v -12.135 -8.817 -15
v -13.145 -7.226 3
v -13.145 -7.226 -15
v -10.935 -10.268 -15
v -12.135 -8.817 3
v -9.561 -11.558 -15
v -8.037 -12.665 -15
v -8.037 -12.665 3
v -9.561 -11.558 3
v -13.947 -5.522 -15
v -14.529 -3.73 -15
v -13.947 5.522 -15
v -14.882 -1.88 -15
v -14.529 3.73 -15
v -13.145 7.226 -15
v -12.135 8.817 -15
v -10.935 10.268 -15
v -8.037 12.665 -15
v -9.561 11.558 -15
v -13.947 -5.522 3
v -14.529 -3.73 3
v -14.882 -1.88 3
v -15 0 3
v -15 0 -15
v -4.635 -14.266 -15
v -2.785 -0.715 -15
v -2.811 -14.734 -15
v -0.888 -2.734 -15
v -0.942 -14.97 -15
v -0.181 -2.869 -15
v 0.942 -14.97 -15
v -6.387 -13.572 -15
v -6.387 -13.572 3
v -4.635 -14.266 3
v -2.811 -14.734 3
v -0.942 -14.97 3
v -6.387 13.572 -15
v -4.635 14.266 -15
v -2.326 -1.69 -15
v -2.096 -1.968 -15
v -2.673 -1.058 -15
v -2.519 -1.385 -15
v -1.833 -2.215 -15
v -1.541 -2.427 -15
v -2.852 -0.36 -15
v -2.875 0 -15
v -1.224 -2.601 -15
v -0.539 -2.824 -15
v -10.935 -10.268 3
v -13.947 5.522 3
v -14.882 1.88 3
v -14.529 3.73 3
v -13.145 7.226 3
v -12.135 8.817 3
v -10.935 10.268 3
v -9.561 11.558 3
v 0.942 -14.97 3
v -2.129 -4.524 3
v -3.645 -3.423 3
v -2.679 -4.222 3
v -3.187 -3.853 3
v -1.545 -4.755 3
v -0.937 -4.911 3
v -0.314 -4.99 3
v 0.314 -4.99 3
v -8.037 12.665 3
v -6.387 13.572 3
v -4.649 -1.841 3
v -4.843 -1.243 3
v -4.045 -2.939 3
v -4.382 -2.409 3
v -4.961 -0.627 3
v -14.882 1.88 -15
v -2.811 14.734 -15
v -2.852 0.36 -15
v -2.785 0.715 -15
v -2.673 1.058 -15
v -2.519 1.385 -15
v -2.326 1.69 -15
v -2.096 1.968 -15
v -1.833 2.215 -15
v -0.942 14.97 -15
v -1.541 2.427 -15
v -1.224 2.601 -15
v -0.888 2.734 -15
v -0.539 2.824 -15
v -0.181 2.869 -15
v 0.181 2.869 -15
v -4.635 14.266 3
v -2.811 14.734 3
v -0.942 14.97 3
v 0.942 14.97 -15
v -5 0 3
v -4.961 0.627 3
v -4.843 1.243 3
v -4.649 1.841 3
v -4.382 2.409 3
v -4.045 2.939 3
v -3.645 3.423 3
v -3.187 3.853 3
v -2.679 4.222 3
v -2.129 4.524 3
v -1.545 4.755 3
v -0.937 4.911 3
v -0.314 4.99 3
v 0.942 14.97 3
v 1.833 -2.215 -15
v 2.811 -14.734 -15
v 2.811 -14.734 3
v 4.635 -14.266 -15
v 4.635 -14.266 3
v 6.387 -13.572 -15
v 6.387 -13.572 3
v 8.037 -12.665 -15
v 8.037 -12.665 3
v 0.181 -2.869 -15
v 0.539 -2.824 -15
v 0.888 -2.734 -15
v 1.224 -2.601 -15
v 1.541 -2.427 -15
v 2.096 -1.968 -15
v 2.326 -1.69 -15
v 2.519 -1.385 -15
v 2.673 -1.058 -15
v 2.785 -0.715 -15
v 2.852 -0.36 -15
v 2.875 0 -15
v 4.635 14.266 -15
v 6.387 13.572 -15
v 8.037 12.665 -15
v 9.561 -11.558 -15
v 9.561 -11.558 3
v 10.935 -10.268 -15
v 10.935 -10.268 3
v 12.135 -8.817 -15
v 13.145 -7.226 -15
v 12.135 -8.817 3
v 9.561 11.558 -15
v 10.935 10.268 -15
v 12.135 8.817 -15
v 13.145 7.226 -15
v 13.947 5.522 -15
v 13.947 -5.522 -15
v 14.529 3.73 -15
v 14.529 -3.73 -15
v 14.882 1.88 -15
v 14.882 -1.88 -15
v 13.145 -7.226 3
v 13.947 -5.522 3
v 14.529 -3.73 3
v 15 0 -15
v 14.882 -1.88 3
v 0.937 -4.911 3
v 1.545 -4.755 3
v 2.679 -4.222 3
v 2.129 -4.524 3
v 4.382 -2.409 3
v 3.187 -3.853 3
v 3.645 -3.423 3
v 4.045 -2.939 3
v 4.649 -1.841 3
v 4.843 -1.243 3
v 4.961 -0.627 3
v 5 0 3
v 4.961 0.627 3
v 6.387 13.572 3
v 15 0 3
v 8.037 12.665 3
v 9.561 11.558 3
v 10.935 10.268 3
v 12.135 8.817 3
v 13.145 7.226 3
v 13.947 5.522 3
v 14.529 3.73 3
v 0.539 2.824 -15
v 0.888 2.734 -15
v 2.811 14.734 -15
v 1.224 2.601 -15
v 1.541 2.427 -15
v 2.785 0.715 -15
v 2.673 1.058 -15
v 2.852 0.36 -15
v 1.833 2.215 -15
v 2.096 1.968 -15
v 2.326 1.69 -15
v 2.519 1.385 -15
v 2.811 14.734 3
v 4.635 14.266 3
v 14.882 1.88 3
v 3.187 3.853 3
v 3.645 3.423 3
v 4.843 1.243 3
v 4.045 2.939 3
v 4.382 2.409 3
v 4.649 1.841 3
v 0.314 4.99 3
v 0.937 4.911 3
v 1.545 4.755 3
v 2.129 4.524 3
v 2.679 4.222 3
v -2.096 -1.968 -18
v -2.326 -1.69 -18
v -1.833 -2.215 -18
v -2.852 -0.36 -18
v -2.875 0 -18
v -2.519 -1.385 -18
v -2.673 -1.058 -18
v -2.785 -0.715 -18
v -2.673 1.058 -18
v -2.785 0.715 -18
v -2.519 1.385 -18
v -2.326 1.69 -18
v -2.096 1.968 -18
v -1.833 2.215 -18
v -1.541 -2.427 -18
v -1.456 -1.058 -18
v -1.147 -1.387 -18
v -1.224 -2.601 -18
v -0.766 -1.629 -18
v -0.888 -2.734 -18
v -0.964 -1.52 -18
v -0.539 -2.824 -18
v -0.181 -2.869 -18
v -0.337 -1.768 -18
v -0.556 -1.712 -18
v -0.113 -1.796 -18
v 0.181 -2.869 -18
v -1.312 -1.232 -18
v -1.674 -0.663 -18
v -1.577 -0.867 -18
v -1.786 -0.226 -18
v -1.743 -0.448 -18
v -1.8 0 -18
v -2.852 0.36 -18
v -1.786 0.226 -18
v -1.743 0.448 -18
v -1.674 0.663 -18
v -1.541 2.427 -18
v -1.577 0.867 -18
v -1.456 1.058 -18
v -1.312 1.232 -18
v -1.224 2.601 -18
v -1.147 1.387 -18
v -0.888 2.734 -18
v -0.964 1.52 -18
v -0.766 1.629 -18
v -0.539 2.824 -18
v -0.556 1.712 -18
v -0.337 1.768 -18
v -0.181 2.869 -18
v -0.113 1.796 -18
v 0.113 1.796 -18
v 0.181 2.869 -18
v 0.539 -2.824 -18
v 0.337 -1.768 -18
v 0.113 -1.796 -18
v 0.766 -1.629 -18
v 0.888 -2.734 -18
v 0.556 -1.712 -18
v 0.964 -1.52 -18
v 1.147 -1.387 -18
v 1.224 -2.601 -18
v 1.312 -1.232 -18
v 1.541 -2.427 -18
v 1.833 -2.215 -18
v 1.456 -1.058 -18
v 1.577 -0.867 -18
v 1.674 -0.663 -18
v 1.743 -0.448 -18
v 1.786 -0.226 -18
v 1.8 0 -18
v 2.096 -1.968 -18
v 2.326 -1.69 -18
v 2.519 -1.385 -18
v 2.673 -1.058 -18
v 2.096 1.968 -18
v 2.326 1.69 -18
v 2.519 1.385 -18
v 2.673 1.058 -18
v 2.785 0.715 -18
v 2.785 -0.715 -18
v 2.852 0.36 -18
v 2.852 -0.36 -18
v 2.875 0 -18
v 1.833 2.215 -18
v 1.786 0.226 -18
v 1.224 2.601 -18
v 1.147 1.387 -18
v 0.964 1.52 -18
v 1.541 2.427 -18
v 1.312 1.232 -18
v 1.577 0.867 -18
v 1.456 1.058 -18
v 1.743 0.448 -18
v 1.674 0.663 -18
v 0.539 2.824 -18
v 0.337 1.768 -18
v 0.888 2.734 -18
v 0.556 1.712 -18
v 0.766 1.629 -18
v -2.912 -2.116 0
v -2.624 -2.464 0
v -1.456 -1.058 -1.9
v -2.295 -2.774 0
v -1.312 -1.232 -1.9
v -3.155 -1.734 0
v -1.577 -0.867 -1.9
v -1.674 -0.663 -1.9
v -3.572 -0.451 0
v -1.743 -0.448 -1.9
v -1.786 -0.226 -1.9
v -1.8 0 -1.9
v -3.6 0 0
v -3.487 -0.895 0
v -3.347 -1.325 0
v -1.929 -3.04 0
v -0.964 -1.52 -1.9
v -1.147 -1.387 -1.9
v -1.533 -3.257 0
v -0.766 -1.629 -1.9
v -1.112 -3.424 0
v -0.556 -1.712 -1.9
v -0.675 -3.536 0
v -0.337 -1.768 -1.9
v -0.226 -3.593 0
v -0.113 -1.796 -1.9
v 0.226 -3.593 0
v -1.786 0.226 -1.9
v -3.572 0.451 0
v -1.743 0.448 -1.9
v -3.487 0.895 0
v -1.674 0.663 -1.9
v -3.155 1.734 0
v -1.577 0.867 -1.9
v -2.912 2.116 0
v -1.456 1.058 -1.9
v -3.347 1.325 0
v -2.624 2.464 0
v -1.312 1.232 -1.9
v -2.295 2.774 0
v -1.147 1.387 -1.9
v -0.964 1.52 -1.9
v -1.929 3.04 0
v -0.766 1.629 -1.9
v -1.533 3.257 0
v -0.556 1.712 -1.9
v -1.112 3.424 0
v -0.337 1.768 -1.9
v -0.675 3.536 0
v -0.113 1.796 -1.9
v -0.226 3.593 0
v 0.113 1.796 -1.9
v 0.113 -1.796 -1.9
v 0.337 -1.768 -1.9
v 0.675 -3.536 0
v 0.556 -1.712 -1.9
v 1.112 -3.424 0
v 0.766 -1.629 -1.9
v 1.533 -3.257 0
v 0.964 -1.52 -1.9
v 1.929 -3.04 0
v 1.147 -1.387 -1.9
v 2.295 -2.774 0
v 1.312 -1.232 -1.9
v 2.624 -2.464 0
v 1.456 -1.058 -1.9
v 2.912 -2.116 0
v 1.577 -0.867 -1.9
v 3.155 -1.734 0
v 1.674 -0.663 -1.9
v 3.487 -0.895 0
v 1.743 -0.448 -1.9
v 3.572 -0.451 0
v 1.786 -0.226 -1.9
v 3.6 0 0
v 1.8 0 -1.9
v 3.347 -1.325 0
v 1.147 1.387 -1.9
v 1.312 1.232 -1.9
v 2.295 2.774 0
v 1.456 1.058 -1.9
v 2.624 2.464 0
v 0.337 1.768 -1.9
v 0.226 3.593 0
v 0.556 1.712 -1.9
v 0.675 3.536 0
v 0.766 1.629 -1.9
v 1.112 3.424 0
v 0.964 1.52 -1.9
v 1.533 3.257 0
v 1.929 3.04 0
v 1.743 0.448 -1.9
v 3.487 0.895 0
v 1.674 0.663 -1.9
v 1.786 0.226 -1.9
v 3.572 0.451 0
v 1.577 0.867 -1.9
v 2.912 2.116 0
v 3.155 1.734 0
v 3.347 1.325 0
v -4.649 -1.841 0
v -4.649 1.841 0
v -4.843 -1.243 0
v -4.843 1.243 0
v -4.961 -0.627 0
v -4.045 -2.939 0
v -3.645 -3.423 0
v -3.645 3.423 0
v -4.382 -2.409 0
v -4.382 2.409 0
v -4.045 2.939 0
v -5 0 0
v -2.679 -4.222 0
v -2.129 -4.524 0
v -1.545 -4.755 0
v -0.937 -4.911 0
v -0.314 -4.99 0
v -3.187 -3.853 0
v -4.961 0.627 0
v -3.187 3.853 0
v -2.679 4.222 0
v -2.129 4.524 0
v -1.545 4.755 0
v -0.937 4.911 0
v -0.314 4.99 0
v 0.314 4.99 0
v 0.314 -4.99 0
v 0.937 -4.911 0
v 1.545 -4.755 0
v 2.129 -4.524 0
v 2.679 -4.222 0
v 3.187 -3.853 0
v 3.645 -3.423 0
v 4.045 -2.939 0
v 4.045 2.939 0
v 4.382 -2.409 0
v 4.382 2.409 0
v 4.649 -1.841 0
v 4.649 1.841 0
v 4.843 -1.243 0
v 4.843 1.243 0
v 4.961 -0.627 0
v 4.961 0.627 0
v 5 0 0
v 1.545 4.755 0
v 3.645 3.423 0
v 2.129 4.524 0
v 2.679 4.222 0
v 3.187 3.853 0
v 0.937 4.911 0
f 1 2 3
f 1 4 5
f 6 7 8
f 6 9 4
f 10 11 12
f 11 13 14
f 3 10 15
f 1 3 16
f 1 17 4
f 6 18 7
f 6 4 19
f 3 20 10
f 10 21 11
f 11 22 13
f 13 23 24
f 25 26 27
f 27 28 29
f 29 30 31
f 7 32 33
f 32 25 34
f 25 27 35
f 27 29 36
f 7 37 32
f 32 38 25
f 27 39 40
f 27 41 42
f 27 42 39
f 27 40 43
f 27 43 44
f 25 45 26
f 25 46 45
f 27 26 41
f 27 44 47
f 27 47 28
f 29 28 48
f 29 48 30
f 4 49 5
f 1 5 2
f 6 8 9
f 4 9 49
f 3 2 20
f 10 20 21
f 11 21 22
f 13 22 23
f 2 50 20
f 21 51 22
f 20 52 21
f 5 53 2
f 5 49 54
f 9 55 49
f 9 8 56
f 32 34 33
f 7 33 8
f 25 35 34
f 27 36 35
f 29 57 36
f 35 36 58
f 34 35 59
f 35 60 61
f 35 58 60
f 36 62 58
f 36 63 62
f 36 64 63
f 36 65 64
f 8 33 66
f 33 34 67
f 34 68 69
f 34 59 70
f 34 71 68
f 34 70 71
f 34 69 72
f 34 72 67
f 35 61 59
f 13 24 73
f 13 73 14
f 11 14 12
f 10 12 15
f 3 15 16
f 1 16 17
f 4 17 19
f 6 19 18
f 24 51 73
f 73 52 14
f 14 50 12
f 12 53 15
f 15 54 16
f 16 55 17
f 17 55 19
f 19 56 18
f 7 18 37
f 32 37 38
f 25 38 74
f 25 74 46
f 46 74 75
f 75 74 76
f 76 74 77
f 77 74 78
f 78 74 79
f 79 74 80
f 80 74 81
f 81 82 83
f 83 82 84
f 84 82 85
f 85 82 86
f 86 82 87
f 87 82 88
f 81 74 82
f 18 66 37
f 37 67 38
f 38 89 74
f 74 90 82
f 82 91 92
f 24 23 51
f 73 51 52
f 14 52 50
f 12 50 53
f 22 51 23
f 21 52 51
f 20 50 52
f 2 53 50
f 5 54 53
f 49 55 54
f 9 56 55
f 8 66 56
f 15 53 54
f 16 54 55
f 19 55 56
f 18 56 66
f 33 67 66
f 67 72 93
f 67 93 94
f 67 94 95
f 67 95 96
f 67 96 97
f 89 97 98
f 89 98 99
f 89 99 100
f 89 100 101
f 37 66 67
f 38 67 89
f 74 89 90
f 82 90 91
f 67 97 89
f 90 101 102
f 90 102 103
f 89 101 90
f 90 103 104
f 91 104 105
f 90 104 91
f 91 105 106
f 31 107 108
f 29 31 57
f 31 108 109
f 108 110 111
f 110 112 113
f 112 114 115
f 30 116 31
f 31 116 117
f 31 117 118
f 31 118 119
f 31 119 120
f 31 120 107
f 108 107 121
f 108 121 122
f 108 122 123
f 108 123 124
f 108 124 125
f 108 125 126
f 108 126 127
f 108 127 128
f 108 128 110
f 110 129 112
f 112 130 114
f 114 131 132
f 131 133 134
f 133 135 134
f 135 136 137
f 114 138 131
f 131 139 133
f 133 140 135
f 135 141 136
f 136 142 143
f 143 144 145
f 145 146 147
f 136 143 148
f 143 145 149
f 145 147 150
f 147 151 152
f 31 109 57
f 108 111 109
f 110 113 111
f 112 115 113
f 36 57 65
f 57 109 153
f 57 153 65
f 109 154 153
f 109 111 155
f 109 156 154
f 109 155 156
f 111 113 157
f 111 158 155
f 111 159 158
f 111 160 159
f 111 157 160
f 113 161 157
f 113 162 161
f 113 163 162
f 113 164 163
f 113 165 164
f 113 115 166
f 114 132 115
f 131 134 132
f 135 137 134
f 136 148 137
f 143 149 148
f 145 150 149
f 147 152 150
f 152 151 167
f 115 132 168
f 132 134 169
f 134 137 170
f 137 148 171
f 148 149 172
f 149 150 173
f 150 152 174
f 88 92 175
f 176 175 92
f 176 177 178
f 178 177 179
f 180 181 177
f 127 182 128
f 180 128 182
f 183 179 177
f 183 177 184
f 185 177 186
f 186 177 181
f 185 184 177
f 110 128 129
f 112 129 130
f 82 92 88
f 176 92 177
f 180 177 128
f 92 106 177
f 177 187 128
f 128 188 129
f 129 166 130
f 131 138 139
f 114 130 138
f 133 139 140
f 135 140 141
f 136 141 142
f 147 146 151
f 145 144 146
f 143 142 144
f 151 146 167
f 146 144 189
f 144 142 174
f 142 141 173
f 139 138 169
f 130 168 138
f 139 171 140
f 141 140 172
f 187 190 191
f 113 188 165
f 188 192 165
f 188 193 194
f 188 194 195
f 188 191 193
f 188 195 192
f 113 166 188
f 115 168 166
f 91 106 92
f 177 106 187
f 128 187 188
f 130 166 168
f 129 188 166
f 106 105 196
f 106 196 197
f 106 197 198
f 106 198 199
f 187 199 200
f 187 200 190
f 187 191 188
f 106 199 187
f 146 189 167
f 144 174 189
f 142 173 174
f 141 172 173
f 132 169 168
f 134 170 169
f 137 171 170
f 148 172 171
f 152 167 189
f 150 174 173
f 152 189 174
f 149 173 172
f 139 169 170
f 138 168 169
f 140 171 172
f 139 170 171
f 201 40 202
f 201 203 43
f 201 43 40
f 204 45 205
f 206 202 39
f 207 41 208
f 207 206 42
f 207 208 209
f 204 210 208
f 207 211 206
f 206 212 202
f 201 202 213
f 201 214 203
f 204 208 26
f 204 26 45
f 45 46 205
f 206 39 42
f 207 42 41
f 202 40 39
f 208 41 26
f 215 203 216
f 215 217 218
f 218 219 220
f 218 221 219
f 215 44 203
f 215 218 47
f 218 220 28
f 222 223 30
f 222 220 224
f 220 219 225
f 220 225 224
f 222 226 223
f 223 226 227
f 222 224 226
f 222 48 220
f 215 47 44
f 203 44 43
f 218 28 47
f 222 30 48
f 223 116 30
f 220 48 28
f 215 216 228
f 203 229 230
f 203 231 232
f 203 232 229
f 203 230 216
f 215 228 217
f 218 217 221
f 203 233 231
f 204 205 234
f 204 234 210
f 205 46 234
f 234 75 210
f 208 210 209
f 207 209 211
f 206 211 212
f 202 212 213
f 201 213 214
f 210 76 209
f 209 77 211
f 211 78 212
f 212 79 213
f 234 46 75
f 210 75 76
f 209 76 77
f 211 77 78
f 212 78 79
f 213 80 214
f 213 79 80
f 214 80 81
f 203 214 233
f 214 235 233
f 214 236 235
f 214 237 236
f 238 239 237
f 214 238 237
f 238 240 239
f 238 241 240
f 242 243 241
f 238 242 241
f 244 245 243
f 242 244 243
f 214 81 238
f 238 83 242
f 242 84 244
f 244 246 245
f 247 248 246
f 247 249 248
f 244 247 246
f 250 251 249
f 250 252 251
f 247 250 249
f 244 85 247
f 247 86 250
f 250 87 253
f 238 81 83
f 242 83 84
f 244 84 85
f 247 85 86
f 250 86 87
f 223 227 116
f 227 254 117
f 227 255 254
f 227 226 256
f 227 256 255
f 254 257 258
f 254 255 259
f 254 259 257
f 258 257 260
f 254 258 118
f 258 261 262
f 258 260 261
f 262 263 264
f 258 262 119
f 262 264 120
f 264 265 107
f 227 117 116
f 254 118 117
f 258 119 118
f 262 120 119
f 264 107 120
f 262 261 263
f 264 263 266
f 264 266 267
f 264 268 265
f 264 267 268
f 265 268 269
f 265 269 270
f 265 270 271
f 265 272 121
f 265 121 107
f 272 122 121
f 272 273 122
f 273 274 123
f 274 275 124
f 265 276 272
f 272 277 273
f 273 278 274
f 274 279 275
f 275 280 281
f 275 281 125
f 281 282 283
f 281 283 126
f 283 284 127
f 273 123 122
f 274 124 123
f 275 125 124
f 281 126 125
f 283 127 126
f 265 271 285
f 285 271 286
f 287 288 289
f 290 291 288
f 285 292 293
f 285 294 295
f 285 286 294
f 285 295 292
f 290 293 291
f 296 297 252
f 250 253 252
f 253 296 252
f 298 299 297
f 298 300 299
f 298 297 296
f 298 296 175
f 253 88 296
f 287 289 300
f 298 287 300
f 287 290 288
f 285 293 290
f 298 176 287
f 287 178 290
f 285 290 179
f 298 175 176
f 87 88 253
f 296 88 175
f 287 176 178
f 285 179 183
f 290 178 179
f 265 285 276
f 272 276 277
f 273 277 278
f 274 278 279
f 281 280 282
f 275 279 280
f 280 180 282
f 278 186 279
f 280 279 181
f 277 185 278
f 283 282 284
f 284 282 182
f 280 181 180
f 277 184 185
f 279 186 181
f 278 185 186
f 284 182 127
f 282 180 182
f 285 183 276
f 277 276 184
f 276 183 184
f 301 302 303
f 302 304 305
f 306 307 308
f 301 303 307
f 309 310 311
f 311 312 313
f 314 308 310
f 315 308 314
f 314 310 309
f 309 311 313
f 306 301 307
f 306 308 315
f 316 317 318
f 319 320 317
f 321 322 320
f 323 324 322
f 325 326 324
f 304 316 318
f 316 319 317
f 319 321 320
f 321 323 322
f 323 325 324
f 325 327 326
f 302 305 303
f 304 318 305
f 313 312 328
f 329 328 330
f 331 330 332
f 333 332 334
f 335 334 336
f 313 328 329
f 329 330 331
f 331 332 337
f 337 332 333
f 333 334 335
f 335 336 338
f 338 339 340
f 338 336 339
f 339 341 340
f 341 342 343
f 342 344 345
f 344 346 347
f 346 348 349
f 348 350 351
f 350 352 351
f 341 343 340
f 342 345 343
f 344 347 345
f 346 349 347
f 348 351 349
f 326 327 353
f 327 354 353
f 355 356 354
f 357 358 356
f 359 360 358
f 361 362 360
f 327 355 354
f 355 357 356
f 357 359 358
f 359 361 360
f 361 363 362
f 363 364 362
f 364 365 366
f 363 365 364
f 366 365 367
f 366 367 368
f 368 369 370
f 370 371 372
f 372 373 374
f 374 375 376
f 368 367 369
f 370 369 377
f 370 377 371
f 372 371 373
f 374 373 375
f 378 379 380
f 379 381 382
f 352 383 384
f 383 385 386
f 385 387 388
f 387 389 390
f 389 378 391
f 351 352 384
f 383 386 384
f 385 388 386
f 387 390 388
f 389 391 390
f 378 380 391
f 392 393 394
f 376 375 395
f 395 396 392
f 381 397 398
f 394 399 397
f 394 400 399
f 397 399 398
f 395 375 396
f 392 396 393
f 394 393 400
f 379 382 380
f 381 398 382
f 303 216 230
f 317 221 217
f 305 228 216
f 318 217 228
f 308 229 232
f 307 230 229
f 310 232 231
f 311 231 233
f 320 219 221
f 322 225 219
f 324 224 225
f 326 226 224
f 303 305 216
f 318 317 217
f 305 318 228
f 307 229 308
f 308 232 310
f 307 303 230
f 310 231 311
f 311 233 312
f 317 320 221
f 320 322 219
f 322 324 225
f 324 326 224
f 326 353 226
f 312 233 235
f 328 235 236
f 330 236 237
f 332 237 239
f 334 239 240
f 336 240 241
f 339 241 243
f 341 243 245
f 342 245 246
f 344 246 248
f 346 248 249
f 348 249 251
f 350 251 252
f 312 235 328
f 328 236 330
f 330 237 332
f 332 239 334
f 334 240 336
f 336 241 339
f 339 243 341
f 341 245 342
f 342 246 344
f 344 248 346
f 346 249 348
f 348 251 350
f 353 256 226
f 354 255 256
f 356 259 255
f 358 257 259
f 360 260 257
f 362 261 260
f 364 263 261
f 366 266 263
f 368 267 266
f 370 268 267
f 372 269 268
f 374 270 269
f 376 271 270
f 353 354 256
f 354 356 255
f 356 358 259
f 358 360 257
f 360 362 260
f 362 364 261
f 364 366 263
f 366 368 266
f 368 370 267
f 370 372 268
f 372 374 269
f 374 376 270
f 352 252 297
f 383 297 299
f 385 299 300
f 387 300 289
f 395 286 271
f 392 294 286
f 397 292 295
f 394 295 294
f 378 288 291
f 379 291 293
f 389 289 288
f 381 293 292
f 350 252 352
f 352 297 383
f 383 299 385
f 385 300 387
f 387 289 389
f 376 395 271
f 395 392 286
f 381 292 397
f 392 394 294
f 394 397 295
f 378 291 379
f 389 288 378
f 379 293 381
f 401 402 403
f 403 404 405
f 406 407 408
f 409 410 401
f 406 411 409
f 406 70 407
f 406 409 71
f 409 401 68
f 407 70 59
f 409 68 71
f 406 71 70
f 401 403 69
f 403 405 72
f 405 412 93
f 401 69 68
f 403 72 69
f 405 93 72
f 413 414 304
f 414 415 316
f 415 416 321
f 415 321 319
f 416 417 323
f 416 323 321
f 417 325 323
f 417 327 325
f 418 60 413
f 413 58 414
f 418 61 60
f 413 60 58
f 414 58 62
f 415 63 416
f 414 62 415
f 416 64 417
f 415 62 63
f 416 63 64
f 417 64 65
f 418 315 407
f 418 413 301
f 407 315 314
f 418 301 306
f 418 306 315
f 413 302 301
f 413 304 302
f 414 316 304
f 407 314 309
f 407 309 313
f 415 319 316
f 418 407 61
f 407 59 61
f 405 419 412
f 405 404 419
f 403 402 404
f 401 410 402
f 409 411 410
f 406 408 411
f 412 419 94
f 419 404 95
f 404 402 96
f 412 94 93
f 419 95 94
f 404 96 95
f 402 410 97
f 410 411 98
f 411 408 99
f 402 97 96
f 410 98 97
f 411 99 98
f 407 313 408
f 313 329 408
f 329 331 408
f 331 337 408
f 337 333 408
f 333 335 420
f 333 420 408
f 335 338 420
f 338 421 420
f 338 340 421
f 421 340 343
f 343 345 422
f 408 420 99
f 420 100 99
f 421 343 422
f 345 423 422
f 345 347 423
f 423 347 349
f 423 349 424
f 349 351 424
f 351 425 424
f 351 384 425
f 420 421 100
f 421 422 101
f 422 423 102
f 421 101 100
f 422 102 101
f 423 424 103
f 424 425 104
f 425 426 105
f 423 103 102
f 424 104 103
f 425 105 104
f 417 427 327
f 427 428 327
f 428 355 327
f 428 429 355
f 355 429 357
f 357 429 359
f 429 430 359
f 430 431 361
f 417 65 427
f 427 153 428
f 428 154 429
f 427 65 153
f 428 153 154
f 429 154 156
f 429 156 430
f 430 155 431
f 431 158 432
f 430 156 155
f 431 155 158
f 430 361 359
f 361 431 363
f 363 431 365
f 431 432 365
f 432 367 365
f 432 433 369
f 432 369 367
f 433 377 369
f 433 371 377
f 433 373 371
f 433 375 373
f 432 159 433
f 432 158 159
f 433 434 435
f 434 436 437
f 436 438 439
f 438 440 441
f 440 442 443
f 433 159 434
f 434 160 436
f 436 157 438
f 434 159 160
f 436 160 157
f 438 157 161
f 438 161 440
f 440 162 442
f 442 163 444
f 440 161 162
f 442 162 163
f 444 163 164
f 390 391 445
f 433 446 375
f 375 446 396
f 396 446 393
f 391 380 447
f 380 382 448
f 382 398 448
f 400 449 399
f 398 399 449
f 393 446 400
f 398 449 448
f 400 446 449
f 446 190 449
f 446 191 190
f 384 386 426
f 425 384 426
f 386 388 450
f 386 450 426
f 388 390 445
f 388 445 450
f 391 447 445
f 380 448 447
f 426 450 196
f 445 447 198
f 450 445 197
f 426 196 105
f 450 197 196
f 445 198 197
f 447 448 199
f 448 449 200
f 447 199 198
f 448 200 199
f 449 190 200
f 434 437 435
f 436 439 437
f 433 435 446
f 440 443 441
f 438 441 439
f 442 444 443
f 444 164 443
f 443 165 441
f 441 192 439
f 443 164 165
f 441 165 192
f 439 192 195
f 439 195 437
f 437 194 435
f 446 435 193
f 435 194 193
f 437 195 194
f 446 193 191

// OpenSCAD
$fn = 50;

difference() {
	union() {
		translate(v = [0, 0, -15.0]) {
			cylinder(h = 18, r = 15.0);
		}
		#translate(v = [0, 0, -18.0]) {
			cylinder(h = 18, r = 2.875);
		}
	}
	union() {
		translate(v = [0, 0, 0]) {
			rotate(a = [0, 0, 0]) {
				difference() {
					union() {
						translate(v = [0, 0, -18.0]) {
							cylinder(h = 18, r = 1.5);
						}
						translate(v = [0, 0, -1.9]) {
							cylinder(h = 1.9, r1 = 1.8, r2 = 3.6);
						}
						translate(v = [0, 0, -18.0]) {
							cylinder(h = 18, r = 1.8);
						}
						translate(v = [0, 0, -18.0]) {
							cylinder(h = 18, r = 1.5);
						}
					}
					union();
				}
			}
		}
		#cylinder(h = 3, r = 5.0);
	}
}
